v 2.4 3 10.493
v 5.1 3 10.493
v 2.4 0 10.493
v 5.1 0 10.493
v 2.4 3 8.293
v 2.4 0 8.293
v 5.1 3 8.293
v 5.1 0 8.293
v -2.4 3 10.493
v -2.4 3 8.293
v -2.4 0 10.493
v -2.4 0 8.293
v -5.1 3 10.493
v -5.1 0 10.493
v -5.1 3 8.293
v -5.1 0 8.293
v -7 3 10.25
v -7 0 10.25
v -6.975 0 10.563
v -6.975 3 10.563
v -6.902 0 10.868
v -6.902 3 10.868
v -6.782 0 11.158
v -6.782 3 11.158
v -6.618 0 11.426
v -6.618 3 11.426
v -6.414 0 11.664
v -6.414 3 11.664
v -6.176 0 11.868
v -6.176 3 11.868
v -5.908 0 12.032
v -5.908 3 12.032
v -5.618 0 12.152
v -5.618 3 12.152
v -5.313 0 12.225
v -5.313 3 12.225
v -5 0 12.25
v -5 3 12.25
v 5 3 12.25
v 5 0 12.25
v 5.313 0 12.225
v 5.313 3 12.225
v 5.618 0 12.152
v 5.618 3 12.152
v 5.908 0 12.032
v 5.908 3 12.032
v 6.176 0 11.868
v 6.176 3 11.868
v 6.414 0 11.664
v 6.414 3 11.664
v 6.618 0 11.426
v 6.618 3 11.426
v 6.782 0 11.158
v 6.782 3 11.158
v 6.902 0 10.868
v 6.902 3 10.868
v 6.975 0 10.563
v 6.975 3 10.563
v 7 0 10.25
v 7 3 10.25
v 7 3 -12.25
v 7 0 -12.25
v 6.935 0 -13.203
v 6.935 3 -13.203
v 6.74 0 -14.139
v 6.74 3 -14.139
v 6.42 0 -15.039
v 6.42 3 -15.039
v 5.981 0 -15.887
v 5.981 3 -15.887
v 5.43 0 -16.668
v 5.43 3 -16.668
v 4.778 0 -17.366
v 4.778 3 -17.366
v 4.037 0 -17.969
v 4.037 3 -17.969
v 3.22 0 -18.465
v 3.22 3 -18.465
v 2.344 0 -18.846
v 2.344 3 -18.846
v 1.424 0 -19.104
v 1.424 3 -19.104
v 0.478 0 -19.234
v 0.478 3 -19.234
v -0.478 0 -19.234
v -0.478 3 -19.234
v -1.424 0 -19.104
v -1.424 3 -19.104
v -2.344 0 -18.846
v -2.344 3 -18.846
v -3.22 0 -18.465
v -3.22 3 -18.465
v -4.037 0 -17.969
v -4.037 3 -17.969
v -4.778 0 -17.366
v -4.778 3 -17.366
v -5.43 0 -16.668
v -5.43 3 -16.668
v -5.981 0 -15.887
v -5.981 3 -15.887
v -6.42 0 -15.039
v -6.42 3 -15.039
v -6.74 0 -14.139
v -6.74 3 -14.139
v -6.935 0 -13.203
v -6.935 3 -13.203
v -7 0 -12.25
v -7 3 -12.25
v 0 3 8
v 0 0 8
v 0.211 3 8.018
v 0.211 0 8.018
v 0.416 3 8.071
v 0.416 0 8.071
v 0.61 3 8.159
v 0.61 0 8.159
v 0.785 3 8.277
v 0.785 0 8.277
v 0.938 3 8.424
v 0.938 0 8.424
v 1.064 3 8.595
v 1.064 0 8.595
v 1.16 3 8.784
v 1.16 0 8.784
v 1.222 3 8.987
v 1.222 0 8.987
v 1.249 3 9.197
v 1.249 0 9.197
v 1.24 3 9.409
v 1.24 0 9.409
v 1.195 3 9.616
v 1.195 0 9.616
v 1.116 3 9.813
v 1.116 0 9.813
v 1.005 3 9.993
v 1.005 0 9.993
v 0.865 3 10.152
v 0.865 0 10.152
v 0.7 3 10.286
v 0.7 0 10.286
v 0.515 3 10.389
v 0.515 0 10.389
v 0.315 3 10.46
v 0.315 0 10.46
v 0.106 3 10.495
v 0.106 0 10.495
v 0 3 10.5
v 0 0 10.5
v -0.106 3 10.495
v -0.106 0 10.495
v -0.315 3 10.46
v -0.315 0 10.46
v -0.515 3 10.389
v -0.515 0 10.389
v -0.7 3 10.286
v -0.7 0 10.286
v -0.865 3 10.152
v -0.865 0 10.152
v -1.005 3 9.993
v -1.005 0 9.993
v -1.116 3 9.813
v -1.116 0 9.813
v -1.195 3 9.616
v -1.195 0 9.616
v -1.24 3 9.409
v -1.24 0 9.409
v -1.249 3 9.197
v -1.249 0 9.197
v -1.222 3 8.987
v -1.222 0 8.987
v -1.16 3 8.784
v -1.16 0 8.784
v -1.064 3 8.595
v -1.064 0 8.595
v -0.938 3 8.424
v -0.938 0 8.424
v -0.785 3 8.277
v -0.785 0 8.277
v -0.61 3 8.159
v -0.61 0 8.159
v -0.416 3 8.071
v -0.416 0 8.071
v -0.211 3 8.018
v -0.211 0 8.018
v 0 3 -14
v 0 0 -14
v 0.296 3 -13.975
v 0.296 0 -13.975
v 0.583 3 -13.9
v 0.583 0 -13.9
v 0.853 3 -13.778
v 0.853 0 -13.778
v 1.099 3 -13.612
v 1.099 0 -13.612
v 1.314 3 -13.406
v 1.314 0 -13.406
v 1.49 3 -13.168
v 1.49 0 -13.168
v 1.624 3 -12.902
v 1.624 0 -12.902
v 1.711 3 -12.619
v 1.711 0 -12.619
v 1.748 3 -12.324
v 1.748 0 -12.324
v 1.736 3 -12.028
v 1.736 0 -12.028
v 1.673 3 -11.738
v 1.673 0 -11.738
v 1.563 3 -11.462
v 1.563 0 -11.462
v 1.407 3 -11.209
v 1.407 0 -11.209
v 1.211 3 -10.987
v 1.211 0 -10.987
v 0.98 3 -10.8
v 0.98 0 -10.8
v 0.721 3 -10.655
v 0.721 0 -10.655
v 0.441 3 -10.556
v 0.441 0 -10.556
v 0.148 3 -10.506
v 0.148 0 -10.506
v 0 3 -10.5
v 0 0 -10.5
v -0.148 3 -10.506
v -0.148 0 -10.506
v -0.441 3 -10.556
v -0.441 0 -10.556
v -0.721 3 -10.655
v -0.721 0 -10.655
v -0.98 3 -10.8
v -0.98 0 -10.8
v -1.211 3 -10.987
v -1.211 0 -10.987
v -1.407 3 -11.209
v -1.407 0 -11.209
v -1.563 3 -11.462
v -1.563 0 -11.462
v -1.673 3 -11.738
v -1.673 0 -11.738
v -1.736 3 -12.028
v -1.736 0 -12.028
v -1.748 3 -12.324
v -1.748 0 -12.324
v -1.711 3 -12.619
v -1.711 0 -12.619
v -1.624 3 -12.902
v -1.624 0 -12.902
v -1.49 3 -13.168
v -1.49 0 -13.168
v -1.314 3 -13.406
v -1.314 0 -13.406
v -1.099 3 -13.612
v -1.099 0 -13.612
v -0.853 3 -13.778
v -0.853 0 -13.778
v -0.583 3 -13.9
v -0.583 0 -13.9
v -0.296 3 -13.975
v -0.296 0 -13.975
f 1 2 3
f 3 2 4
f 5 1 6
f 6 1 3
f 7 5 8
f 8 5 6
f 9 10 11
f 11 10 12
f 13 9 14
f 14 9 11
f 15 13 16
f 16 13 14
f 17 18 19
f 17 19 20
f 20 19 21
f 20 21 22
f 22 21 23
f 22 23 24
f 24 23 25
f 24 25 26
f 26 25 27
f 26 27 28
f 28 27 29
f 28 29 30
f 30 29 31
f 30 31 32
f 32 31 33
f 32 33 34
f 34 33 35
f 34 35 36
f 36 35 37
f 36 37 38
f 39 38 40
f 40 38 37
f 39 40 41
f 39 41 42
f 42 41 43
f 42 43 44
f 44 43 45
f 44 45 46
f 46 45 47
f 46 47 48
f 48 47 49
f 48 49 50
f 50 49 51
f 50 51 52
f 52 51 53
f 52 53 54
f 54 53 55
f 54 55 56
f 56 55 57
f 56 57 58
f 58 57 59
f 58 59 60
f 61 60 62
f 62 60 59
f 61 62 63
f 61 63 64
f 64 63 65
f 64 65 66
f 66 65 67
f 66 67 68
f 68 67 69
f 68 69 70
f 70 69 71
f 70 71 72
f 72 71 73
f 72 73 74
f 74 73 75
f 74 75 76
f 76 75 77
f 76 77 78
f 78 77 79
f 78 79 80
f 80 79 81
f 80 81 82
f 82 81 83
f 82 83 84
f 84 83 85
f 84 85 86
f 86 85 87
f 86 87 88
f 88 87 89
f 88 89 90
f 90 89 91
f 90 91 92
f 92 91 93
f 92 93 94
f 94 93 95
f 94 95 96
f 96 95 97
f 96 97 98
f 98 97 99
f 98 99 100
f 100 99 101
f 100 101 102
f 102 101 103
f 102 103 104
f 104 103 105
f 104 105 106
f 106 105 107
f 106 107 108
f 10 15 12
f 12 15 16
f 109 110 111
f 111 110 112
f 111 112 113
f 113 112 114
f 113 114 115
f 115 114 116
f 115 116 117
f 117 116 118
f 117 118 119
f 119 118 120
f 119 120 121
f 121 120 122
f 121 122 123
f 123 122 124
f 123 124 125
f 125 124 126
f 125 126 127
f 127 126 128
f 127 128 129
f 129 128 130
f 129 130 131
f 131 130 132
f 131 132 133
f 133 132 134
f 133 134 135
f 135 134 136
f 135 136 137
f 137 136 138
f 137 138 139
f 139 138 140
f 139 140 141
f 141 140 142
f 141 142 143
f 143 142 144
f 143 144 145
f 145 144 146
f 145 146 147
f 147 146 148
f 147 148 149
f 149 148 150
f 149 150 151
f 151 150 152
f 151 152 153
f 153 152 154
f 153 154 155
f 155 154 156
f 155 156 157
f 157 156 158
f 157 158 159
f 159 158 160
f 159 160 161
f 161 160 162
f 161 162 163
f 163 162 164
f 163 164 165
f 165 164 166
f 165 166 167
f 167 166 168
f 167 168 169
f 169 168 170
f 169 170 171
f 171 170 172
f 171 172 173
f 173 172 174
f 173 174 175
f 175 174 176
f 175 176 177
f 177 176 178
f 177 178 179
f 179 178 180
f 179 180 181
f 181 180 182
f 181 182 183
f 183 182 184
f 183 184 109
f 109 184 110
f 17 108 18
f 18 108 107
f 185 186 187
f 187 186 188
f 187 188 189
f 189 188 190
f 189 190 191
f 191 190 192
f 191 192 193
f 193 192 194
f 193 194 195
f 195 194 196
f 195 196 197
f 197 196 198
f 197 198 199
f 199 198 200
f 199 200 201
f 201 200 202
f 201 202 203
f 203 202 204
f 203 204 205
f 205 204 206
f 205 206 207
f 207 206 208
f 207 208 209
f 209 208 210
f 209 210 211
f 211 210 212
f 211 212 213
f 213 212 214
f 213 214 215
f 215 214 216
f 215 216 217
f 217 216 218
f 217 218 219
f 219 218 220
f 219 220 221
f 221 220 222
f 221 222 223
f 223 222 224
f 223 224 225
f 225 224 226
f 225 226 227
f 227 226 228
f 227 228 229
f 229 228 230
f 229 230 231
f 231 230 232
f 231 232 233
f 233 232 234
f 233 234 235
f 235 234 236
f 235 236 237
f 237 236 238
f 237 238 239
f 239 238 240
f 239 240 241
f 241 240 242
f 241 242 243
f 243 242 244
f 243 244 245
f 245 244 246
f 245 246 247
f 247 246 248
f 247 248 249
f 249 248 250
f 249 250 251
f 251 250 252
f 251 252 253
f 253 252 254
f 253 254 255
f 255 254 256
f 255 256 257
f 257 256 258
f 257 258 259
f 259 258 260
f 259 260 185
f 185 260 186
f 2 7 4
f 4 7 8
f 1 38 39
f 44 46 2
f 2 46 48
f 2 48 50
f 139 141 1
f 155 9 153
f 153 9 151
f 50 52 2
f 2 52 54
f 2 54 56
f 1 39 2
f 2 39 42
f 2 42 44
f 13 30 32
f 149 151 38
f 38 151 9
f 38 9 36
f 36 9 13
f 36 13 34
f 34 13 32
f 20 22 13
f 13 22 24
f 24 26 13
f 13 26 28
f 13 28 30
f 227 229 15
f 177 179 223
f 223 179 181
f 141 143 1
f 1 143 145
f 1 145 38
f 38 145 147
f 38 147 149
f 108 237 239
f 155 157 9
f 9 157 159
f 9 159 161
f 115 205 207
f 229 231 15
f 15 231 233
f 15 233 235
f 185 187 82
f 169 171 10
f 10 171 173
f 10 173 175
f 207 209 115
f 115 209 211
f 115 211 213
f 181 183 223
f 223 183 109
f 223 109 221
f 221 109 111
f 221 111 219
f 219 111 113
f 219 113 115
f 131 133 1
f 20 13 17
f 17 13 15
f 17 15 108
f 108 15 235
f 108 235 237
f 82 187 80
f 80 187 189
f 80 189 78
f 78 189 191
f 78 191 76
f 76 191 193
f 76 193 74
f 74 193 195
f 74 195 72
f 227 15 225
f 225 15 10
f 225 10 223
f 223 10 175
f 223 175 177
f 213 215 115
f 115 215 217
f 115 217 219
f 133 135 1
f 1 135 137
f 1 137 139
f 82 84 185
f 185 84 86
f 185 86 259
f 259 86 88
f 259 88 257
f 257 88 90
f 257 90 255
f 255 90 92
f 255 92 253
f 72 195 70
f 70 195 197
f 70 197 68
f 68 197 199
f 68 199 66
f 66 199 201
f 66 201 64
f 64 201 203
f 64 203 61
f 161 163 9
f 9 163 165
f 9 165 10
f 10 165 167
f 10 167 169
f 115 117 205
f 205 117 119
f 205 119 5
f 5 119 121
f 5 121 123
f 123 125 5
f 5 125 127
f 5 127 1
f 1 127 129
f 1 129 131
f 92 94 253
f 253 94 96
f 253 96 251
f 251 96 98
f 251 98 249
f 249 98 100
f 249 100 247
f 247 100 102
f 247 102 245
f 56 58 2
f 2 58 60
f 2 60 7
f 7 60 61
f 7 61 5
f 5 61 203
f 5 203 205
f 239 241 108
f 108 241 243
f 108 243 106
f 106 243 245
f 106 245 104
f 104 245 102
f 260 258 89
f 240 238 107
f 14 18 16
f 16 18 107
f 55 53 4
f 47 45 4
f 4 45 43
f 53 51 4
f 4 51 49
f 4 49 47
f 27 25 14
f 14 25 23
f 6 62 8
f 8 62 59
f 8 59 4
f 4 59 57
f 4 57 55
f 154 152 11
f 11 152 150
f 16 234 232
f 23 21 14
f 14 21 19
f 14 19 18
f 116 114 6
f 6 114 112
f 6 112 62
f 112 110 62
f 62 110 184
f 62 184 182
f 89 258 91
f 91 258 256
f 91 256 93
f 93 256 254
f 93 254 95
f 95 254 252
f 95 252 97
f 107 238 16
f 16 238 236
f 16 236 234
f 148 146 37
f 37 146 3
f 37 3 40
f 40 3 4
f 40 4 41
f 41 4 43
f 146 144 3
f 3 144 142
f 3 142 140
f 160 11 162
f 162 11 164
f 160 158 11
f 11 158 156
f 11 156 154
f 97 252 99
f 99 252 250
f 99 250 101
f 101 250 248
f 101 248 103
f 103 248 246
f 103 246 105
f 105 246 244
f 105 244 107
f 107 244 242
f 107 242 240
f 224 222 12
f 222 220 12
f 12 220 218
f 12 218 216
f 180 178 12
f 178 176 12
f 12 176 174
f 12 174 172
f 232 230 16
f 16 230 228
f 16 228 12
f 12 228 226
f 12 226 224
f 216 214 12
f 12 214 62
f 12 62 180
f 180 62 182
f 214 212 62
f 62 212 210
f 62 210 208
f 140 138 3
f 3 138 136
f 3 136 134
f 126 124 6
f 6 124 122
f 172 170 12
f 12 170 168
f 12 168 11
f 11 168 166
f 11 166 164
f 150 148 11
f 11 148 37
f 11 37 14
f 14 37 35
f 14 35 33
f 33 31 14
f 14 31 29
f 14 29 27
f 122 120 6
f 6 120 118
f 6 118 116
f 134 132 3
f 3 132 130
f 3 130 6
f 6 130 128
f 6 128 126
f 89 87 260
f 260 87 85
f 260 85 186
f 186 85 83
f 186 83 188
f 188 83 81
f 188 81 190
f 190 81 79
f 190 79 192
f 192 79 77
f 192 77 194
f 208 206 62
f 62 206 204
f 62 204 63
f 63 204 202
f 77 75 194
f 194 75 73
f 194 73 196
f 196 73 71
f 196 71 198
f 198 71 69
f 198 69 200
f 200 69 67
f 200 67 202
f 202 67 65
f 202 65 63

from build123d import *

# Parameters (mm, degrees)
SKETCH_1_W      = 2.7
SKETCH_1_H      = 2.2
SKETCH_1_R      = 1.25
SKETCH_1_R_2    = 1.75
EXTRUDE_1_DEPTH = 3


with BuildPart() as part:
    # 草图1 → 凸台-拉伸1 (new body)
    with BuildSketch(Plane(origin=(0, 0, 0), x_dir=(1, 0, 0), z_dir=(0, 1, 0))):
        with BuildLine():
            ThreePointArc((-7, -10.25), (-6.414213562, -11.664213562), (-5, -12.25))
            Line((-5, -12.25), (5, -12.25))
            ThreePointArc((5, -12.25), (6.414213562, -11.664213562), (7, -10.25))
            Line((7, -10.25), (7, 12.25))
            ThreePointArc((7, 12.25), (0, 19.25), (-7, 12.25))
            Line((-7, 12.25), (-7, -10.25))
        make_face()
        with Locations((-3.75, -9.393390946)):
            Rectangle(SKETCH_1_W, SKETCH_1_H, mode=Mode.SUBTRACT)
        with Locations((0, -9.25)):
            Circle(SKETCH_1_R, mode=Mode.SUBTRACT)
        with Locations((3.75, -9.393390946)):
            Rectangle(SKETCH_1_W, SKETCH_1_H, mode=Mode.SUBTRACT)
        with Locations((0, 12.25)):
            Circle(SKETCH_1_R_2, mode=Mode.SUBTRACT)
    extrude(amount=EXTRUDE_1_DEPTH)


solid = part.part
